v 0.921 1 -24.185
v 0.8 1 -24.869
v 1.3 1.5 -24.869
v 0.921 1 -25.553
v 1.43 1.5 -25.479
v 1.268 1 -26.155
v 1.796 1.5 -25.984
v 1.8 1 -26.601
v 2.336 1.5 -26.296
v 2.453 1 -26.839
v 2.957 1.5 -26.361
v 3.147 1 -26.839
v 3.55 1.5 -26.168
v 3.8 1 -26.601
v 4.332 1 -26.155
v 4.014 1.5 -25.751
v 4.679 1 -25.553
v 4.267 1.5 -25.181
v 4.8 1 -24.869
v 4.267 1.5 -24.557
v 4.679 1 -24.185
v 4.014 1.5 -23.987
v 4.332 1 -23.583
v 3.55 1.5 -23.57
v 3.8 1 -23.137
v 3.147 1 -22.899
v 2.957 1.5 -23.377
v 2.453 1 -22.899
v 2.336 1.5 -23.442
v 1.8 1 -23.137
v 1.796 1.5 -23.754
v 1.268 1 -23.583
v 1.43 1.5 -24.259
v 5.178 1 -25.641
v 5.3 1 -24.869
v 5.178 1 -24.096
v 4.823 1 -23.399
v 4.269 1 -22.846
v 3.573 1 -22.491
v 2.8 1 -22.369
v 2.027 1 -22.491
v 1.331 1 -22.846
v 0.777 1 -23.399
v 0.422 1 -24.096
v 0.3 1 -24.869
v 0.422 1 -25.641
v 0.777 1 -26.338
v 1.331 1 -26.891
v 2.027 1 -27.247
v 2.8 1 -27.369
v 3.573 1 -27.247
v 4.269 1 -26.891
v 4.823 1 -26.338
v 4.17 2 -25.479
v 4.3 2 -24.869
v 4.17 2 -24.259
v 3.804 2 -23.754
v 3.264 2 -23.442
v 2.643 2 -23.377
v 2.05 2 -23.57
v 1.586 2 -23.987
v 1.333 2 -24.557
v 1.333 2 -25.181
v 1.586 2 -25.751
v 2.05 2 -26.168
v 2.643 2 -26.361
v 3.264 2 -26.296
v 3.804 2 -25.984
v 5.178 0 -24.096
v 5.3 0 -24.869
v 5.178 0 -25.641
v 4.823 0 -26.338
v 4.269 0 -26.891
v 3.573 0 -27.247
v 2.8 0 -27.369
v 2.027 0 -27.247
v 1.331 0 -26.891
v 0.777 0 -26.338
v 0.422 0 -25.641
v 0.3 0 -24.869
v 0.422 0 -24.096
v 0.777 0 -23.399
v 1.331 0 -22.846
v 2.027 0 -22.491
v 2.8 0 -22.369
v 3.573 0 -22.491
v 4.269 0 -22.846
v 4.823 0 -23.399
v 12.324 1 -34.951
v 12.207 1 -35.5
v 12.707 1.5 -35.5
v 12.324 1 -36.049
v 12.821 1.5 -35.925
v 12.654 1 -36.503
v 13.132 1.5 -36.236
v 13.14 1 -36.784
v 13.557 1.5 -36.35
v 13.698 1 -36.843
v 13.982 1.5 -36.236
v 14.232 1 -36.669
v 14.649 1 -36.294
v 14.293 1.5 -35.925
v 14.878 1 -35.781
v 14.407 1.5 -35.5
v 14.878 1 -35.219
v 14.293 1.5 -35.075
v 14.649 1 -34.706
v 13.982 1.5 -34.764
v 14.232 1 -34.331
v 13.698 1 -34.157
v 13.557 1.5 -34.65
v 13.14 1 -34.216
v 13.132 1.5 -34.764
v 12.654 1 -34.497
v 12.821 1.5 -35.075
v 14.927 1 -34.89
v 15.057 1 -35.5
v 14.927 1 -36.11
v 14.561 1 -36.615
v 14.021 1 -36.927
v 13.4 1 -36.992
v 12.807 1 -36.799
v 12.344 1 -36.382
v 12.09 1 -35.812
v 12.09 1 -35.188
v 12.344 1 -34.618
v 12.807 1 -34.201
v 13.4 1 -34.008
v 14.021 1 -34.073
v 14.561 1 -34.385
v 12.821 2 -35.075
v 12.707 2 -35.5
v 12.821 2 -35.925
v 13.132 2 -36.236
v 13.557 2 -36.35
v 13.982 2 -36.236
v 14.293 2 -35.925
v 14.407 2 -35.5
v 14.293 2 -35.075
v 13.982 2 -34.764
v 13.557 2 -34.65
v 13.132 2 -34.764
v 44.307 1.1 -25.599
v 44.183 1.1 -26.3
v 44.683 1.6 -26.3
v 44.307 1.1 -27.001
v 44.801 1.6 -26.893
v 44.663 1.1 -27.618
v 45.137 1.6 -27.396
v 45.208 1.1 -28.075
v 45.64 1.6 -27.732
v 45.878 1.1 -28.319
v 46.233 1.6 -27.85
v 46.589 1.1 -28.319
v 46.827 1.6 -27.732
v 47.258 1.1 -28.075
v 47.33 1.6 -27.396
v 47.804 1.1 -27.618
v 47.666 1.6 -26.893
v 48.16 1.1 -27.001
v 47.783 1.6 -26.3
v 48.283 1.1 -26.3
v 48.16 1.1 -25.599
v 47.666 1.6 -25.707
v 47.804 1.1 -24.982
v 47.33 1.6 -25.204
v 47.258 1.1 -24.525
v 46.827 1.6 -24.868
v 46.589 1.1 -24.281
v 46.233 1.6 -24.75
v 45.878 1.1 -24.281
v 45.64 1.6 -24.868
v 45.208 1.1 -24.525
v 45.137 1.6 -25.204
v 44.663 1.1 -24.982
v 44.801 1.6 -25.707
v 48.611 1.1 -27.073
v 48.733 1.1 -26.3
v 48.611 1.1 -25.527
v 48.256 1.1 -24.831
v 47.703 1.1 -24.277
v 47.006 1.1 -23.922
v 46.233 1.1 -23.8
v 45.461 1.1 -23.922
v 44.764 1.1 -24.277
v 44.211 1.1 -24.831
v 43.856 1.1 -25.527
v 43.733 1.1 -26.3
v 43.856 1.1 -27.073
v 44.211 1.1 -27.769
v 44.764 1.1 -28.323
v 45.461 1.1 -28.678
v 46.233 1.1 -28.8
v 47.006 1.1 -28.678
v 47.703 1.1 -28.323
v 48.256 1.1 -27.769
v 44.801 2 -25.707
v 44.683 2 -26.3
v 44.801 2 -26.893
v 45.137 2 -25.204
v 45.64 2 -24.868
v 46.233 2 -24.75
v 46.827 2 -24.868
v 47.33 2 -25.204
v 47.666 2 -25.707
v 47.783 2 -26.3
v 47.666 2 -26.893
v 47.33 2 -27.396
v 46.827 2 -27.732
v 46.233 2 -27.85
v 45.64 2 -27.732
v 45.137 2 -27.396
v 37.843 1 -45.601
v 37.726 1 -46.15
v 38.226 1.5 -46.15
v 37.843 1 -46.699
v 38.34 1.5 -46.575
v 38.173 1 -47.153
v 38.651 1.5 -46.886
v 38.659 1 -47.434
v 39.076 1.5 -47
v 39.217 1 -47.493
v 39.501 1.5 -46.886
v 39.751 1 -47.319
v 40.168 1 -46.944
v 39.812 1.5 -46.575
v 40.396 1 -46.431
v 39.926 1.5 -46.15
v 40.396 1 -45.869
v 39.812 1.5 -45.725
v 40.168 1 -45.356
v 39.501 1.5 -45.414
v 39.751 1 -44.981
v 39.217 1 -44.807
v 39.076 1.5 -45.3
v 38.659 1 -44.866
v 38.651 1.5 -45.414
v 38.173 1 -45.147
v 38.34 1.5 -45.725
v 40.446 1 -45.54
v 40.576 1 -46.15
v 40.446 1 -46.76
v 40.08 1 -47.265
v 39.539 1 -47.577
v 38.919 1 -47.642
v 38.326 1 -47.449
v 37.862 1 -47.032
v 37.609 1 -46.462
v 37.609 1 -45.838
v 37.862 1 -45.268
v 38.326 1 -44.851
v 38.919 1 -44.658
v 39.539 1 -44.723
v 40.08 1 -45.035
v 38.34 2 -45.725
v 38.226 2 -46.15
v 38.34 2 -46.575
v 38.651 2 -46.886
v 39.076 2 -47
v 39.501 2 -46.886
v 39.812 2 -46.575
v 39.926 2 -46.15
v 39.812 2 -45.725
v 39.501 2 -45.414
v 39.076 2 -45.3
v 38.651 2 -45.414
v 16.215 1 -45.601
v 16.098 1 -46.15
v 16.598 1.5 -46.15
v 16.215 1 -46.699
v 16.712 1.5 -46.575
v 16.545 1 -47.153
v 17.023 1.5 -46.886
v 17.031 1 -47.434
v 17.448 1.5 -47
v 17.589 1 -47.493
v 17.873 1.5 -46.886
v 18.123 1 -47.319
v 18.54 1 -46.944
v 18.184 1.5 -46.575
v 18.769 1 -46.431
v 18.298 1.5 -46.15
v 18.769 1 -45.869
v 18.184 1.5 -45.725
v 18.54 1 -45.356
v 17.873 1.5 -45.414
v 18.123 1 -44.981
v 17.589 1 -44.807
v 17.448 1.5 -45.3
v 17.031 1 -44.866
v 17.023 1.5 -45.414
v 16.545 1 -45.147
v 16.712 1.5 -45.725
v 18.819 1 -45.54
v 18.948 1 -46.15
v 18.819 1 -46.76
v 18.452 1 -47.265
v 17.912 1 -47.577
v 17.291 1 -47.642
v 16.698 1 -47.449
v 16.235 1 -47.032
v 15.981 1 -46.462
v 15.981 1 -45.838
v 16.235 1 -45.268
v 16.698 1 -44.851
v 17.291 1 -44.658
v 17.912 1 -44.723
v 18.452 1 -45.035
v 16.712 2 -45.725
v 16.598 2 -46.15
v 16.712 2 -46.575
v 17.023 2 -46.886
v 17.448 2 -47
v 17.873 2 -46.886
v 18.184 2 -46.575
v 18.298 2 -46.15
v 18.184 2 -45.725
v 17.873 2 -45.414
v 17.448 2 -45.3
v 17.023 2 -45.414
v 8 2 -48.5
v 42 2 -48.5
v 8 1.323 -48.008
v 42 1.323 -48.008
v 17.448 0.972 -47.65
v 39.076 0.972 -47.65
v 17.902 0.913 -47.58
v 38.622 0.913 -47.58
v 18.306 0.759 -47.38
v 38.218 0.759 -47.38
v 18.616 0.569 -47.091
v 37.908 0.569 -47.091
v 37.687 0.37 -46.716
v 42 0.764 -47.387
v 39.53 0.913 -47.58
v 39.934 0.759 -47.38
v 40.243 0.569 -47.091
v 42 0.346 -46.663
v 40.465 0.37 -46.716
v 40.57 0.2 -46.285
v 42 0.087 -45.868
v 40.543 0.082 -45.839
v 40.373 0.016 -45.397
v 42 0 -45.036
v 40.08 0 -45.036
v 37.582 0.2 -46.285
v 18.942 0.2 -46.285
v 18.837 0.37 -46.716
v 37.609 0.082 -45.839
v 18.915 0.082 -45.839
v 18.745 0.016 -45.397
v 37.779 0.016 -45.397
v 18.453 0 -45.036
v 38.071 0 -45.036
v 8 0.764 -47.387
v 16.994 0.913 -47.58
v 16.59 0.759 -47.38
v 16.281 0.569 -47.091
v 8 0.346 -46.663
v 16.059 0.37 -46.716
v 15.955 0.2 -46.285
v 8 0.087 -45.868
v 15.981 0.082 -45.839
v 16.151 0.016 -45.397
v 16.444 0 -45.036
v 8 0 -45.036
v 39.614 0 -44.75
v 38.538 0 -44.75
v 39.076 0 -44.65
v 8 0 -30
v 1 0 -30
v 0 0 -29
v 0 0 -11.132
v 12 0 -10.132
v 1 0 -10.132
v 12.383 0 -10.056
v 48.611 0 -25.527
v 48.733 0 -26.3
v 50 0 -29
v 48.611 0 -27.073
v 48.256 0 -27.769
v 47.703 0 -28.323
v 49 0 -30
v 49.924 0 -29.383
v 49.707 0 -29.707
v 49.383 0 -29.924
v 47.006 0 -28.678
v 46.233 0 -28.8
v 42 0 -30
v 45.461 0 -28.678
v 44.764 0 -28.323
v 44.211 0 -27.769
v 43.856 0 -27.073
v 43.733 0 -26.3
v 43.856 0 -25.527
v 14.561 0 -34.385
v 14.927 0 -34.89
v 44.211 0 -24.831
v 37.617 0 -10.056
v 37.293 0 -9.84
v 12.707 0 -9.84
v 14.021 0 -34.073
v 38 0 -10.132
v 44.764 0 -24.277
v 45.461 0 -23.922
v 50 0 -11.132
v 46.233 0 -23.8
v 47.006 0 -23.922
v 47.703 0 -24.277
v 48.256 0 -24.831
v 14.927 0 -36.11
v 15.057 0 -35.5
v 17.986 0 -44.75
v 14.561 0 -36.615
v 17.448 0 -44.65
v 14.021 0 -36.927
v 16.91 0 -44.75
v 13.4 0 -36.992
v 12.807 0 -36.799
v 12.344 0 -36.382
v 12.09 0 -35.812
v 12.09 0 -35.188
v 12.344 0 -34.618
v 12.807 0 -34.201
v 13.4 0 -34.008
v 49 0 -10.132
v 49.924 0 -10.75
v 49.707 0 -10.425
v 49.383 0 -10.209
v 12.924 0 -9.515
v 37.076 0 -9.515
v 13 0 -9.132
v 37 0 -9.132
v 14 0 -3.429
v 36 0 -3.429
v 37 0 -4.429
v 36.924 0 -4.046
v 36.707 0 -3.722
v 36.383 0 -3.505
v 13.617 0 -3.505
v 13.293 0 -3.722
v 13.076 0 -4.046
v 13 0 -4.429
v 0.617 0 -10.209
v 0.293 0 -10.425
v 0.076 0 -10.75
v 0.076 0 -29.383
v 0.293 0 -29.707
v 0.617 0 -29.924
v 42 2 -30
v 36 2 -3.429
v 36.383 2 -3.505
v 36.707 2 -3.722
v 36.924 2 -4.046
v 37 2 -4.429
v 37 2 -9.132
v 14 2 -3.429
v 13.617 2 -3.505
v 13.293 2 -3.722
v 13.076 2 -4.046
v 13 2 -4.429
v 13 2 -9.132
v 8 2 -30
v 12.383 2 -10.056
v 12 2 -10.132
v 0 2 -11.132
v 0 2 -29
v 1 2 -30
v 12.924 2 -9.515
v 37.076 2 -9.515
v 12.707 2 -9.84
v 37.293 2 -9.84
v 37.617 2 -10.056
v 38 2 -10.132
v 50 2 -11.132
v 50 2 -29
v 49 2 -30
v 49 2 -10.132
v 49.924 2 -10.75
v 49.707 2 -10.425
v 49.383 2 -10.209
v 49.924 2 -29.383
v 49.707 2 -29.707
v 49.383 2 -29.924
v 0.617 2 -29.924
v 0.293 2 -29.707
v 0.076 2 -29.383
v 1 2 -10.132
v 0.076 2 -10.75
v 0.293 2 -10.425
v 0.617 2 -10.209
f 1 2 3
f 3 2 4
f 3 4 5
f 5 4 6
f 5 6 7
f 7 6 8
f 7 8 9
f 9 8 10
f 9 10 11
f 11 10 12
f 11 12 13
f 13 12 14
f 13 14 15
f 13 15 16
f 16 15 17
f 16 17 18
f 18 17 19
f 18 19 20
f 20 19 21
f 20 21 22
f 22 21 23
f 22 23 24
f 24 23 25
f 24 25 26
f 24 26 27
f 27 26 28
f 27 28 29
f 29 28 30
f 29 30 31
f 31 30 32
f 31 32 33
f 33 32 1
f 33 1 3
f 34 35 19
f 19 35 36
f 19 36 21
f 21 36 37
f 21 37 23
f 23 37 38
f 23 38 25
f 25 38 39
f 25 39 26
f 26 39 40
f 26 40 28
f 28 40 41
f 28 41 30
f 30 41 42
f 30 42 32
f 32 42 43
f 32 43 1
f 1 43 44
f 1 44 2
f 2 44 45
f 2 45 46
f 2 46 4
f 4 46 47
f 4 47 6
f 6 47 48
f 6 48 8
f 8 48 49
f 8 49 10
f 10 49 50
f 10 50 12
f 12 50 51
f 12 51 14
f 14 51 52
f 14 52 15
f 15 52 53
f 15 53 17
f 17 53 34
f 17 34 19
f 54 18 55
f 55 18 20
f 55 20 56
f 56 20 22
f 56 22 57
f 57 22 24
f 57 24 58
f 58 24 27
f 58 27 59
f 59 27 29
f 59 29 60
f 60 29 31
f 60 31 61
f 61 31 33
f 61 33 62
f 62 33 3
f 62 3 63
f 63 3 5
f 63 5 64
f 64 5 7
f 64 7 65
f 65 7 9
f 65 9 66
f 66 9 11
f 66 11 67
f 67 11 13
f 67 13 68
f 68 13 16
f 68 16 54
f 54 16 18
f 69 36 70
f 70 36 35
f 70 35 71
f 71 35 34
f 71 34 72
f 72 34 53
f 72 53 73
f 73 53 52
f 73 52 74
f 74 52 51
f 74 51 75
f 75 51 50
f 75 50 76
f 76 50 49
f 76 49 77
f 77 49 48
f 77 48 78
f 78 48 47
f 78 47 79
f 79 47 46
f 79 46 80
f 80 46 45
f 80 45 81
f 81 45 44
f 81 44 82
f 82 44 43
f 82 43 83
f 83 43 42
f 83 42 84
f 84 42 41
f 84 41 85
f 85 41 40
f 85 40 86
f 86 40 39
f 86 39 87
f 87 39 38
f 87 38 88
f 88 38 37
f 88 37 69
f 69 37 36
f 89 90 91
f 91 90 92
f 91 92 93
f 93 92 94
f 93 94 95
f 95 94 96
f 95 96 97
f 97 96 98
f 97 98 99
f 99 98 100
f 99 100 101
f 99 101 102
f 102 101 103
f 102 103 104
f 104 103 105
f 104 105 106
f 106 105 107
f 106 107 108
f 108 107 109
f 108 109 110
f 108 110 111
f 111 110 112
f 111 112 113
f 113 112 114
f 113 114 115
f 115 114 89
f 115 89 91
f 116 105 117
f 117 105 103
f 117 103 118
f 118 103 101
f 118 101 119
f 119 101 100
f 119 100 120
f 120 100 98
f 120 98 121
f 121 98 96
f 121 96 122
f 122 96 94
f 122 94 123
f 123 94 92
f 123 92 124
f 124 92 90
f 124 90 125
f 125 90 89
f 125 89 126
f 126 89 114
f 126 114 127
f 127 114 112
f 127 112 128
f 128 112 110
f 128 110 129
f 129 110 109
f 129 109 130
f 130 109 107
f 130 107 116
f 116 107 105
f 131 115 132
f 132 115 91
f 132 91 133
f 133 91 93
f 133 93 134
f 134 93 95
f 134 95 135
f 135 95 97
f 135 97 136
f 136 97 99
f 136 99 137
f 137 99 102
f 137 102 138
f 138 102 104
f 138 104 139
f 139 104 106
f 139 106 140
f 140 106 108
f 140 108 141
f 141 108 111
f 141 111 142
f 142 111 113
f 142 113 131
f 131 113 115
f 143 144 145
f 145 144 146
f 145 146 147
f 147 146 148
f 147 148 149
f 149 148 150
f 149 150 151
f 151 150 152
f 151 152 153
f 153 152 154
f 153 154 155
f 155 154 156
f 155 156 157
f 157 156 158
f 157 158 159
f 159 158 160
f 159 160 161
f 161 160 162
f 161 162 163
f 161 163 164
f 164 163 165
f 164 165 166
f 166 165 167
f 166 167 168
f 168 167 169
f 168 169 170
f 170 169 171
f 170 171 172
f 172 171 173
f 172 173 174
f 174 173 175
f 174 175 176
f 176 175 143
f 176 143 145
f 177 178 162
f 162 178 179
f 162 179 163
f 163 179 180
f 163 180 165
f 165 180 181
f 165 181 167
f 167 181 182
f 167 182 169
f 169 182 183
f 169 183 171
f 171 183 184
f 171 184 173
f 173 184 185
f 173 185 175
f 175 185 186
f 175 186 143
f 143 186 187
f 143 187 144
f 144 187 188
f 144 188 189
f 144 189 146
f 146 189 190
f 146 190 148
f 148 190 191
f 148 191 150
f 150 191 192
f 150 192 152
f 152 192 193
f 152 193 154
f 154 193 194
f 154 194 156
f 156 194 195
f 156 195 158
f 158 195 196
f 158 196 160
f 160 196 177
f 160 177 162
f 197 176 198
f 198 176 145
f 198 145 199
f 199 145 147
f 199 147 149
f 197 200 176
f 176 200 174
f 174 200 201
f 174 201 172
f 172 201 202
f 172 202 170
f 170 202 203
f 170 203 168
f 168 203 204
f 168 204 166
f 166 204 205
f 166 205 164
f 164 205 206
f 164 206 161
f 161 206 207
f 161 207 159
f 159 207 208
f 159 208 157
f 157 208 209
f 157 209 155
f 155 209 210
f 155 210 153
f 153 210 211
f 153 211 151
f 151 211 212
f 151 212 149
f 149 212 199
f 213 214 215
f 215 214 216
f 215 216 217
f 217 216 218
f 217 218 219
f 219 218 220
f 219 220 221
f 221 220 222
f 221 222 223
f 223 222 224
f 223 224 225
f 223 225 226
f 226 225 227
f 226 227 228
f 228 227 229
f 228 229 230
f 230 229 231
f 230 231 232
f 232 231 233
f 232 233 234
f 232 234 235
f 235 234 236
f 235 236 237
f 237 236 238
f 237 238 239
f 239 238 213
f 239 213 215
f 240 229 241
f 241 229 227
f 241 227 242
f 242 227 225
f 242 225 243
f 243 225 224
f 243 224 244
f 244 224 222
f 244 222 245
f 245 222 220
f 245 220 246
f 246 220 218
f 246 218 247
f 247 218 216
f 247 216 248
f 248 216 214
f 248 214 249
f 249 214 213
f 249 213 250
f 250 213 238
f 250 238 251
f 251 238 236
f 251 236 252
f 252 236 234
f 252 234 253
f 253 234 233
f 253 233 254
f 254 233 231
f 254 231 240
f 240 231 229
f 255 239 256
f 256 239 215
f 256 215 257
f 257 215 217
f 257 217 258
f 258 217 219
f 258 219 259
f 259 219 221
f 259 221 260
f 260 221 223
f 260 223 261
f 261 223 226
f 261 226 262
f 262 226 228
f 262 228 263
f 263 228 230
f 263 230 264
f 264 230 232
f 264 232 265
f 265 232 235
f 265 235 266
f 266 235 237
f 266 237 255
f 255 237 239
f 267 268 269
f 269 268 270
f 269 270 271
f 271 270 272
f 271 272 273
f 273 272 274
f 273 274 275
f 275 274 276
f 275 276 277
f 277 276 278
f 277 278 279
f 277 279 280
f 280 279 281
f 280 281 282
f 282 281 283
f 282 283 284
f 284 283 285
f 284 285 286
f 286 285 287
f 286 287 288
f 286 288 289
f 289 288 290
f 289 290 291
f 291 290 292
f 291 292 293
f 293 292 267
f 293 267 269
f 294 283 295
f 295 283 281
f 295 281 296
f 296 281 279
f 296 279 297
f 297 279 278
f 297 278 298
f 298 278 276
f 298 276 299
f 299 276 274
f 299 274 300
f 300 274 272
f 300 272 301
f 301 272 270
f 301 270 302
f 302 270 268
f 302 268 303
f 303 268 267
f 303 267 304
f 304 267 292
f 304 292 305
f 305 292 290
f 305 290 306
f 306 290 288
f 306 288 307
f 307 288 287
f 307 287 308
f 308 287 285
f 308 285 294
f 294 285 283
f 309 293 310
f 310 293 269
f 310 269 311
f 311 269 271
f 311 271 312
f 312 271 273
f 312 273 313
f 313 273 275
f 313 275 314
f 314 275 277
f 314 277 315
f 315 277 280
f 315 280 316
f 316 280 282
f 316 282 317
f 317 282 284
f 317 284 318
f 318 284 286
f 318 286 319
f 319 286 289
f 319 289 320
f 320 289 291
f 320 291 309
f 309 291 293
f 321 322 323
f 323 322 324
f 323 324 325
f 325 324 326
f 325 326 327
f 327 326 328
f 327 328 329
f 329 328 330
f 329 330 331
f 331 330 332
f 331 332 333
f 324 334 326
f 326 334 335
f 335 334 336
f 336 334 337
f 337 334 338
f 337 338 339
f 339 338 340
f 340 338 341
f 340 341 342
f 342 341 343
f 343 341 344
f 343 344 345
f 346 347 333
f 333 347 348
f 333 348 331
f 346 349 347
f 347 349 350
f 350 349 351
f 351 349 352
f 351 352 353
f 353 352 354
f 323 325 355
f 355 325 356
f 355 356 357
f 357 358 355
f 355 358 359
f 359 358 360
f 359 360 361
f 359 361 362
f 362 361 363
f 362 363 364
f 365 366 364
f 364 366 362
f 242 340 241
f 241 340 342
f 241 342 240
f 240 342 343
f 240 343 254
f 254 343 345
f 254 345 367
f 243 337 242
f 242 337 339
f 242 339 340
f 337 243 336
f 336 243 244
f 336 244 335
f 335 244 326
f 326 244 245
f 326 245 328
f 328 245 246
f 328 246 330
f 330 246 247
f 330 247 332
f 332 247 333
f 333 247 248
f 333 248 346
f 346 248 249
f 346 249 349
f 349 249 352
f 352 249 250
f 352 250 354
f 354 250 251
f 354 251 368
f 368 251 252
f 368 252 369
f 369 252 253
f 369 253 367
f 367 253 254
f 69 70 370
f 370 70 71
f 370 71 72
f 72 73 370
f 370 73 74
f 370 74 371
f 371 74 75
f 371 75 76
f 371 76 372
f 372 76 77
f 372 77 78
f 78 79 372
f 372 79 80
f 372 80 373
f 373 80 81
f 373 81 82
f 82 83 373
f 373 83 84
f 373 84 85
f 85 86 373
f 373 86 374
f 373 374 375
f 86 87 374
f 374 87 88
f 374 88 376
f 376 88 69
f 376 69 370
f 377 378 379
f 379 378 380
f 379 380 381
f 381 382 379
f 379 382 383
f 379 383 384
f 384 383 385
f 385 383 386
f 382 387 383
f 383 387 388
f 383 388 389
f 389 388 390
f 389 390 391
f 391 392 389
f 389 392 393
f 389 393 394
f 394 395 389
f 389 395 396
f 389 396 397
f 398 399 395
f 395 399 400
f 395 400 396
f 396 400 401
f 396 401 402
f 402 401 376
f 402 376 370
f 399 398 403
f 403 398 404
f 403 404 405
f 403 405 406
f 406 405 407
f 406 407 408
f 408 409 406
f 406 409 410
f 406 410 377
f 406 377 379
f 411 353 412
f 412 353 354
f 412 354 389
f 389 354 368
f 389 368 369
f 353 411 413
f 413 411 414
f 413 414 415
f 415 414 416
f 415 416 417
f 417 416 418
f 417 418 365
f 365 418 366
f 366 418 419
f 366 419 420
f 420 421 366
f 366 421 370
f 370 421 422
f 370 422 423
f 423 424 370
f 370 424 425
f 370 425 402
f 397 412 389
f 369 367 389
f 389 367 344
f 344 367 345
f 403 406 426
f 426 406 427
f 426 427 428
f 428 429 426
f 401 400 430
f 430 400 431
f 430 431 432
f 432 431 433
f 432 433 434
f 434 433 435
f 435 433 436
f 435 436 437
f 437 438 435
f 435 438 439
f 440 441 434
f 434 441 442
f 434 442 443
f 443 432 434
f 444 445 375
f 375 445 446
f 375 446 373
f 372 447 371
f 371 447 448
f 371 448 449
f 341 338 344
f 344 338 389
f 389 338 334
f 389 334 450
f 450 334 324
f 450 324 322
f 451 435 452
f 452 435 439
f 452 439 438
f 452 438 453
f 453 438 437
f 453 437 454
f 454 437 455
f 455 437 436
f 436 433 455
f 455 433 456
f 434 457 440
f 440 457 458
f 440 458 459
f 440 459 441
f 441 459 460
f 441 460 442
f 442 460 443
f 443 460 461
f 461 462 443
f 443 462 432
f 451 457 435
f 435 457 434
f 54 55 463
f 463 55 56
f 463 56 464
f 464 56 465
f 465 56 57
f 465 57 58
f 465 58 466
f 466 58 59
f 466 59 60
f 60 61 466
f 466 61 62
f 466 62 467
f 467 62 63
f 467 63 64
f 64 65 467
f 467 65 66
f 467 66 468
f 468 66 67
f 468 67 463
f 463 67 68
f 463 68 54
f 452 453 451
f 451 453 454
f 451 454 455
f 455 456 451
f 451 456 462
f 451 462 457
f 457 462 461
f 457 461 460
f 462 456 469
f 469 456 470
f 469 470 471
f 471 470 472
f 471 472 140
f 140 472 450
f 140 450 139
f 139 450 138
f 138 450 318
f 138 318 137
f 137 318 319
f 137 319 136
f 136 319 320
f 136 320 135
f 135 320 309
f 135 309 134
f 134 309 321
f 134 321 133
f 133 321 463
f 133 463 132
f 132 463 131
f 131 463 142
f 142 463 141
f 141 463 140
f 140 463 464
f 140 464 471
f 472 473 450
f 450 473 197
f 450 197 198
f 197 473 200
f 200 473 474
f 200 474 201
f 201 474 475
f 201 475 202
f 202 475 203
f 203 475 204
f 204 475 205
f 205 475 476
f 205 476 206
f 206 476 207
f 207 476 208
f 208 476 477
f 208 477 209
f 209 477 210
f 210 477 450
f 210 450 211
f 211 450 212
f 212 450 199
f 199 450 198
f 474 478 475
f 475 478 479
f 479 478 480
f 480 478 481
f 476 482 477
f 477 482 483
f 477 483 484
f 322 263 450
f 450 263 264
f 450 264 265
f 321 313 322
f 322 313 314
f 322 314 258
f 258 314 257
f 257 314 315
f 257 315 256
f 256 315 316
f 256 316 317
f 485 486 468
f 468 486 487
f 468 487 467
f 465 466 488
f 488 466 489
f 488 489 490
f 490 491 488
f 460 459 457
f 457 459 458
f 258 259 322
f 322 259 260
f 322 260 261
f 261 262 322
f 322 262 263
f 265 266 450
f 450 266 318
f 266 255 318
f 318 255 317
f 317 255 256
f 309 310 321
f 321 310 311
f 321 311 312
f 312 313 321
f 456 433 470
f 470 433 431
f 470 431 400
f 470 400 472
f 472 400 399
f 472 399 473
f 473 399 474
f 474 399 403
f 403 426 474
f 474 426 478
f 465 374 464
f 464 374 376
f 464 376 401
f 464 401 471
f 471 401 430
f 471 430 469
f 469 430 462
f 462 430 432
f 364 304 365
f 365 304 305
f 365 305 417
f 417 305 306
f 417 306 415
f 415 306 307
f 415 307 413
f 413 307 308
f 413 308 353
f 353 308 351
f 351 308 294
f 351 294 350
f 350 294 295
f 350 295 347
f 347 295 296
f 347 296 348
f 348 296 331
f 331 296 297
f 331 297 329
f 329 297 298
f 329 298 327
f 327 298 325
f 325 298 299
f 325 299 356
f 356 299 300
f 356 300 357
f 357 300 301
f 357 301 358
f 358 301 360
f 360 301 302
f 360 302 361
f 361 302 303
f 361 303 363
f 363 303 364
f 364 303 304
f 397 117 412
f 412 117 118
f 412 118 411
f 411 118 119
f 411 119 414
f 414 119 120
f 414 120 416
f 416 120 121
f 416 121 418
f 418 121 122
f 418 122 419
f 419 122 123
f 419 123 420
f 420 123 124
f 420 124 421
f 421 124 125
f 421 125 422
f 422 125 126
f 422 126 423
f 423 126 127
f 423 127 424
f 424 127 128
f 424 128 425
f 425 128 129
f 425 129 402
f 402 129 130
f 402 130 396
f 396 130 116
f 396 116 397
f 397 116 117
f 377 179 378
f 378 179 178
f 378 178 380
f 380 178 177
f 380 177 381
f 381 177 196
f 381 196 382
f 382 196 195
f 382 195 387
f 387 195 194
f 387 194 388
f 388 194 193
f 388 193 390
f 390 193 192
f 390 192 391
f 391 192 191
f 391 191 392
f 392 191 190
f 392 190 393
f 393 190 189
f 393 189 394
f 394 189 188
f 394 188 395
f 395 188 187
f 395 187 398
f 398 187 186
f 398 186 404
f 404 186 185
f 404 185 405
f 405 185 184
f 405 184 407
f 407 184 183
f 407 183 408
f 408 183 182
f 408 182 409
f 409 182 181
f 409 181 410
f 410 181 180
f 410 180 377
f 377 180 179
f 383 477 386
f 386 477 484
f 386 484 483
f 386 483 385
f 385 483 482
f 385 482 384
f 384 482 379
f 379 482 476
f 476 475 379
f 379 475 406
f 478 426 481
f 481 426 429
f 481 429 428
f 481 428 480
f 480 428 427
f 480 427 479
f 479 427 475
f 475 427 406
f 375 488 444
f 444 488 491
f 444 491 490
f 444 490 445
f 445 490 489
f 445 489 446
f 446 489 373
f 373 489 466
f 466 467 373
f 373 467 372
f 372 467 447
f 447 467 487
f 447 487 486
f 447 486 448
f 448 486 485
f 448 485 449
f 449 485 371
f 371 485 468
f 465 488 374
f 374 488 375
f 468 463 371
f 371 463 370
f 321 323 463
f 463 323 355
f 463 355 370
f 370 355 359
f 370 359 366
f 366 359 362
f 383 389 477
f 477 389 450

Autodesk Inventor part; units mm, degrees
ref_plane "YZ Plane" through (0, 0, 0) normal (1, 0, 0) x (0, 1, 0)
ref_plane "XZ Plane" through (0, 0, 0) normal (0, 1, 0) x (-1, 0, 0)
ref_plane "XY Plane" through (0, 0, 0) normal (0, 0, 1) x (1, 0, 0)
sketch "Szkic1" plane through (0, 0, 0) normal (0, 1, 0) x (-1, 0, 0)
  line L0 (0, 0) -> (-50, 0)
  line L1 (-50, 0) -> (-50, -50)
  line L2 (-50, -50) -> (0, -50)
  line L3 (0, -50) -> (0, 0)
  line L4 (0, -50) -> (-8, -50)
  line L5 (-8, -50) -> (-8, -30)
  line L6 (-8, -30) -> (0, -30)
  line L7 (0, -30) -> (0, -50)
  line L8 (-50, -50) -> (-42, -50)
  line L9 (-42, -50) -> (-42, -30)
  line L10 (-42, -30) -> (-50, -30)
  line L11 (-50, -30) -> (-50, -50)
  dimension "d0" = 50
  dimension "d1" = 50
  dimension "d2" = 8
  dimension "d3" = 20
  dimension "d4" = 8
  dimension "d5" = 20
extrude "Wyciągnięcie proste1" add sketch "Szkic1" along normal blind 2 contours L3 L6 L5 L2 L9 L10 L1 L0
sketch "Szkic4" plane through (0, 2, 0) normal (0, 1, 0) x (1, 0, 0)
  line L0 (42, 50) -> (8, 50) projected
  line L1 (12.0571, 48.5) -> (42.467, 48.5) projected
  line L2 (42, 30) -> (42, 50) projected
  line L3 (42, 50) -> (8, 50)
  line L4 (8, 50) -> (8, 48.5)
  line L5 (8, 48.5) -> (42, 48.5)
  line L6 (42, 48.5) -> (42, 50)
  circle A0 centre (39.467, 46.75) radius 0.85 projected
  circle A1 centre (15.0571, 46.75) radius 0.85 projected
  arc A2 (48.301, 27.6749) -> (46.5, 27.9321) centre (47.25, 26.75) ccw projected
  point P0 (0, 0)
  point P1 (42, 48.5)
extrude "Wyciągnięcie proste3" cut sketch "Szkic4" against normal through all
sketch "Szkic6" plane through (0, 0, -30) normal (-1, 0, 0) x (0, 0, 1)
  line L0 (0, 0) -> (30, 0) projected
  line L1 (30, 0) -> (30, 2) projected
  line L2 (0, 2) -> (30, 2) projected
  line L3 (0, 0) -> (0, 2) projected
  line L4 (20.8419, 34.4275) -> (27.9622, -2) projected
  line L5 (27.9622, -2) -> (30, -2) projected
  line L6 (30, -2) -> (22.8048, 34.8111) projected
  line L7 (22.8048, 34.8111) -> (20.8419, 34.4275) projected
  point P0 (27.1803, 2)
  point P1 (27.5712, 0)
extrude "Wyciągnięcie proste5" cut sketch "Szkic6" against normal through all contours L4 L2 L6 L0 | L6 L2 L1 L0
sketch "Szkic7" plane through (0, 0, 0) normal (0, -1, 0) x (1, 0, 0)
  line L0 (50, -2.4288) -> (0, -2.4288) projected
  line L1 (0, -30) -> (0, -2.4288) projected
  line L2 (8, -30) -> (0, -30) projected
  line L3 (8, -48.5) -> (8, -30) projected
  line L4 (8, -48.5) -> (42, -48.5) projected
  line L5 (42, -30) -> (42, -48.5) projected
  line L6 (50, -30) -> (42, -30) projected
  line L7 (50, -2.4288) -> (50, -30) projected
  circle A0 centre (39.467, -46.75) radius 0.85 projected
  circle A1 centre (15.0571, -46.75) radius 0.85 projected
  line L8 (4, -10.1324) -> (0, -10.1324) projected
  line L9 (50, -10.1324) -> (45.5, -10.1324) projected
  line L10 (50, -10.1324) -> (42, -10.1324)
  line L11 (42, -10.1324) -> (42, -2.4288)
  line L12 (42, -2.4288) -> (50, -2.4288)
  line L13 (50, -2.4288) -> (50, -10.1324)
  line L14 (0, -2.4288) -> (8, -2.4288)
  line L15 (8, -2.4288) -> (8, -10.1324)
  line L16 (8, -10.1324) -> (0, -10.1324)
  line L17 (0, -10.1324) -> (0, -2.4288)
  point P0 (0, 0)
  dimension "d16" = 8
  dimension "d17" = 8
extrude "Wyciągnięcie proste6" cut sketch "Szkic7" against normal through all contours L7 L9 L10 L11 L0 | L15 L16 L8 L1 L0
fillet "Zaokrąglenie1" radius 1 4 edges at (0, 1, -30) (0, 1, -10.1324) (50, 1, -10.1324) (50, 1, -30)
sketch "Szkic9" plane through (0, 2, 0) normal (0, 1, 0) x (1, 0, 0)
  circle A0 centre (15.0571, 46.75) radius 0.85 projected
  circle A1 centre (39.467, 46.75) radius 0.85 projected
  point P0 (0, 0)
extrude "Wyciągnięcie proste8" add sketch "Szkic9" against normal up to surface (2 mm away)
sketch "Szkic10" plane through (0, 0, 0) normal (0, -1, 0) x (1, 0, 0)
  circle A0 centre (17.4483, -46.15) radius 0.6 projected
  circle A1 centre (39.0758, -46.15) radius 0.6 projected
  circle A2 centre (13.5571, -35.5) radius 0.6 projected
  circle A3 centre (46.2335, -26.3) radius 1.35 projected
  circle A4 centre (47.3, -13.0919) radius 1.35 projected
  circle A5 centre (3, -27) radius 1.4 projected
  circle A6 centre (3, -27) radius 1.55
  circle A7 centre (46.2335, -26.3) radius 1.55
  circle A8 centre (47.3, -13.0919) radius 1.55
  circle A9 centre (13.5571, -35.5) radius 0.85
  circle A10 centre (17.4483, -46.15) radius 0.85
  circle A11 centre (39.0758, -46.15) radius 0.85
  point P0 (0, 0)
  dimension "d25" = 3.1
  dimension "d26" = 1.7
extrude "Wyciągnięcie proste9" cut sketch "Szkic10" against normal through all contours A0 | A1 | A2 | A3 | A7 | A9 | A10 | A11
sketch "Szkic11" plane through (0, 0, 0) normal (0, -1, 0) x (1, 0, 0)
  circle A0 centre (47.3, -13.0919) radius 1.55 projected
  circle A1 centre (46.2335, -26.3) radius 1.55 projected
  circle A2 centre (3, -27) radius 1.55 projected
  circle A3 centre (13.5571, -35.5) radius 0.85 projected
  circle A4 centre (17.4483, -46.15) radius 0.85 projected
  circle A5 centre (39.0758, -46.15) radius 0.85 projected
  point P0 (0, 0)
hole "Otwór1" at (46.2335, 0, -26.3) direction (0, 1, 0) diameter 5 depth 1.1
hole "Otwór2" at (13.5571, 0, -35.5) at (17.4483, 0, -46.15) at (39.0758, 0, -46.15) direction (0, 1, 0) diameter 3 depth 1
sketch "Szkic12" plane through (0, 0, 0) normal (0, -1, 0) x (1, 0, 0)
  line L0 (49, -10.1324) -> (42, -10.1324) projected
  line L1 (8, -10.1324) -> (1, -10.1324) projected
  line L2 (50, -11.1324) -> (50, -29) projected
  line L3 (0, -29) -> (0, -11.1324) projected
  line L4 (50, -2.4288) -> (37, -2.4288)
  line L5 (37, -2.4288) -> (37, -10.1324)
  line L6 (37, -10.1324) -> (50, -10.1324)
  line L7 (50, -10.1324) -> (50, -2.4288)
  line L8 (0, -2.4288) -> (13, -2.4288)
  line L9 (13, -2.4288) -> (13, -10.1324)
  line L10 (13, -10.1324) -> (0, -10.1324)
  line L11 (0, -10.1324) -> (0, -2.4288)
  line L12 (42, -2.4288) -> (8, -2.4288) projected
  point P0 (0, 0)
  dimension "d43" = 13
  dimension "d44" = 13
extrude "Wyciągnięcie proste10" cut sketch "Szkic12" against normal through all
fillet "Zaokrąglenie2" radius 1 2 edges at (13, 1, -10.1324) (37, 1, -10.1324)
sketch "Szkic13" plane through (0, 2, 0) normal (0, 1, 0) x (1, 0, 0)
  line L0 (10.7953, -1.4378) -> (38.6557, -1.4378)
  line L1 (38.6557, -1.4378) -> (38.6557, 3.4288)
  line L2 (38.6557, 3.4288) -> (10.7953, 3.4288)
  line L3 (10.7953, 3.4288) -> (10.7953, -1.4378)
  line L4 (37, 2.4288) -> (13, 2.4288) projected
  point P0 (0, 0)
  dimension "d48" = 1
extrude "Wyciągnięcie proste11" cut sketch "Szkic13" against normal through all
fillet "Zaokrąglenie3" radius 1 2 edges at (13, 1, -3.4288) (37, 1, -3.4288)
fillet "Zaokrąglenie4" radius 4 1 edges at (25, 0, -48.5)
chamfer "Faza1" distance 0.5 angle 45 4 edges at (16.5983, 1, -46.15) (38.2258, 1, -46.15) (44.6835, 1.1, -26.3) (12.7071, 1, -35.5)
sketch "Szkic14" plane through (0, 0, 0) normal (0, -1, 0) x (1, 0, 0)
  circle A0 centre (2.8, -24.8689) radius 1.4 projected
  point P0 (0, 0)
hole "Otwór3" at (2.8, 0, -24.8689) direction (0, 1, 0) diameter 3 depth 2 counterbore diameter 5 counterbore depth 1
chamfer "Faza2" distance 0.5 angle 45 1 edges at (2.8, 1, -23.3689)
properties part number "podstawa_v2"
